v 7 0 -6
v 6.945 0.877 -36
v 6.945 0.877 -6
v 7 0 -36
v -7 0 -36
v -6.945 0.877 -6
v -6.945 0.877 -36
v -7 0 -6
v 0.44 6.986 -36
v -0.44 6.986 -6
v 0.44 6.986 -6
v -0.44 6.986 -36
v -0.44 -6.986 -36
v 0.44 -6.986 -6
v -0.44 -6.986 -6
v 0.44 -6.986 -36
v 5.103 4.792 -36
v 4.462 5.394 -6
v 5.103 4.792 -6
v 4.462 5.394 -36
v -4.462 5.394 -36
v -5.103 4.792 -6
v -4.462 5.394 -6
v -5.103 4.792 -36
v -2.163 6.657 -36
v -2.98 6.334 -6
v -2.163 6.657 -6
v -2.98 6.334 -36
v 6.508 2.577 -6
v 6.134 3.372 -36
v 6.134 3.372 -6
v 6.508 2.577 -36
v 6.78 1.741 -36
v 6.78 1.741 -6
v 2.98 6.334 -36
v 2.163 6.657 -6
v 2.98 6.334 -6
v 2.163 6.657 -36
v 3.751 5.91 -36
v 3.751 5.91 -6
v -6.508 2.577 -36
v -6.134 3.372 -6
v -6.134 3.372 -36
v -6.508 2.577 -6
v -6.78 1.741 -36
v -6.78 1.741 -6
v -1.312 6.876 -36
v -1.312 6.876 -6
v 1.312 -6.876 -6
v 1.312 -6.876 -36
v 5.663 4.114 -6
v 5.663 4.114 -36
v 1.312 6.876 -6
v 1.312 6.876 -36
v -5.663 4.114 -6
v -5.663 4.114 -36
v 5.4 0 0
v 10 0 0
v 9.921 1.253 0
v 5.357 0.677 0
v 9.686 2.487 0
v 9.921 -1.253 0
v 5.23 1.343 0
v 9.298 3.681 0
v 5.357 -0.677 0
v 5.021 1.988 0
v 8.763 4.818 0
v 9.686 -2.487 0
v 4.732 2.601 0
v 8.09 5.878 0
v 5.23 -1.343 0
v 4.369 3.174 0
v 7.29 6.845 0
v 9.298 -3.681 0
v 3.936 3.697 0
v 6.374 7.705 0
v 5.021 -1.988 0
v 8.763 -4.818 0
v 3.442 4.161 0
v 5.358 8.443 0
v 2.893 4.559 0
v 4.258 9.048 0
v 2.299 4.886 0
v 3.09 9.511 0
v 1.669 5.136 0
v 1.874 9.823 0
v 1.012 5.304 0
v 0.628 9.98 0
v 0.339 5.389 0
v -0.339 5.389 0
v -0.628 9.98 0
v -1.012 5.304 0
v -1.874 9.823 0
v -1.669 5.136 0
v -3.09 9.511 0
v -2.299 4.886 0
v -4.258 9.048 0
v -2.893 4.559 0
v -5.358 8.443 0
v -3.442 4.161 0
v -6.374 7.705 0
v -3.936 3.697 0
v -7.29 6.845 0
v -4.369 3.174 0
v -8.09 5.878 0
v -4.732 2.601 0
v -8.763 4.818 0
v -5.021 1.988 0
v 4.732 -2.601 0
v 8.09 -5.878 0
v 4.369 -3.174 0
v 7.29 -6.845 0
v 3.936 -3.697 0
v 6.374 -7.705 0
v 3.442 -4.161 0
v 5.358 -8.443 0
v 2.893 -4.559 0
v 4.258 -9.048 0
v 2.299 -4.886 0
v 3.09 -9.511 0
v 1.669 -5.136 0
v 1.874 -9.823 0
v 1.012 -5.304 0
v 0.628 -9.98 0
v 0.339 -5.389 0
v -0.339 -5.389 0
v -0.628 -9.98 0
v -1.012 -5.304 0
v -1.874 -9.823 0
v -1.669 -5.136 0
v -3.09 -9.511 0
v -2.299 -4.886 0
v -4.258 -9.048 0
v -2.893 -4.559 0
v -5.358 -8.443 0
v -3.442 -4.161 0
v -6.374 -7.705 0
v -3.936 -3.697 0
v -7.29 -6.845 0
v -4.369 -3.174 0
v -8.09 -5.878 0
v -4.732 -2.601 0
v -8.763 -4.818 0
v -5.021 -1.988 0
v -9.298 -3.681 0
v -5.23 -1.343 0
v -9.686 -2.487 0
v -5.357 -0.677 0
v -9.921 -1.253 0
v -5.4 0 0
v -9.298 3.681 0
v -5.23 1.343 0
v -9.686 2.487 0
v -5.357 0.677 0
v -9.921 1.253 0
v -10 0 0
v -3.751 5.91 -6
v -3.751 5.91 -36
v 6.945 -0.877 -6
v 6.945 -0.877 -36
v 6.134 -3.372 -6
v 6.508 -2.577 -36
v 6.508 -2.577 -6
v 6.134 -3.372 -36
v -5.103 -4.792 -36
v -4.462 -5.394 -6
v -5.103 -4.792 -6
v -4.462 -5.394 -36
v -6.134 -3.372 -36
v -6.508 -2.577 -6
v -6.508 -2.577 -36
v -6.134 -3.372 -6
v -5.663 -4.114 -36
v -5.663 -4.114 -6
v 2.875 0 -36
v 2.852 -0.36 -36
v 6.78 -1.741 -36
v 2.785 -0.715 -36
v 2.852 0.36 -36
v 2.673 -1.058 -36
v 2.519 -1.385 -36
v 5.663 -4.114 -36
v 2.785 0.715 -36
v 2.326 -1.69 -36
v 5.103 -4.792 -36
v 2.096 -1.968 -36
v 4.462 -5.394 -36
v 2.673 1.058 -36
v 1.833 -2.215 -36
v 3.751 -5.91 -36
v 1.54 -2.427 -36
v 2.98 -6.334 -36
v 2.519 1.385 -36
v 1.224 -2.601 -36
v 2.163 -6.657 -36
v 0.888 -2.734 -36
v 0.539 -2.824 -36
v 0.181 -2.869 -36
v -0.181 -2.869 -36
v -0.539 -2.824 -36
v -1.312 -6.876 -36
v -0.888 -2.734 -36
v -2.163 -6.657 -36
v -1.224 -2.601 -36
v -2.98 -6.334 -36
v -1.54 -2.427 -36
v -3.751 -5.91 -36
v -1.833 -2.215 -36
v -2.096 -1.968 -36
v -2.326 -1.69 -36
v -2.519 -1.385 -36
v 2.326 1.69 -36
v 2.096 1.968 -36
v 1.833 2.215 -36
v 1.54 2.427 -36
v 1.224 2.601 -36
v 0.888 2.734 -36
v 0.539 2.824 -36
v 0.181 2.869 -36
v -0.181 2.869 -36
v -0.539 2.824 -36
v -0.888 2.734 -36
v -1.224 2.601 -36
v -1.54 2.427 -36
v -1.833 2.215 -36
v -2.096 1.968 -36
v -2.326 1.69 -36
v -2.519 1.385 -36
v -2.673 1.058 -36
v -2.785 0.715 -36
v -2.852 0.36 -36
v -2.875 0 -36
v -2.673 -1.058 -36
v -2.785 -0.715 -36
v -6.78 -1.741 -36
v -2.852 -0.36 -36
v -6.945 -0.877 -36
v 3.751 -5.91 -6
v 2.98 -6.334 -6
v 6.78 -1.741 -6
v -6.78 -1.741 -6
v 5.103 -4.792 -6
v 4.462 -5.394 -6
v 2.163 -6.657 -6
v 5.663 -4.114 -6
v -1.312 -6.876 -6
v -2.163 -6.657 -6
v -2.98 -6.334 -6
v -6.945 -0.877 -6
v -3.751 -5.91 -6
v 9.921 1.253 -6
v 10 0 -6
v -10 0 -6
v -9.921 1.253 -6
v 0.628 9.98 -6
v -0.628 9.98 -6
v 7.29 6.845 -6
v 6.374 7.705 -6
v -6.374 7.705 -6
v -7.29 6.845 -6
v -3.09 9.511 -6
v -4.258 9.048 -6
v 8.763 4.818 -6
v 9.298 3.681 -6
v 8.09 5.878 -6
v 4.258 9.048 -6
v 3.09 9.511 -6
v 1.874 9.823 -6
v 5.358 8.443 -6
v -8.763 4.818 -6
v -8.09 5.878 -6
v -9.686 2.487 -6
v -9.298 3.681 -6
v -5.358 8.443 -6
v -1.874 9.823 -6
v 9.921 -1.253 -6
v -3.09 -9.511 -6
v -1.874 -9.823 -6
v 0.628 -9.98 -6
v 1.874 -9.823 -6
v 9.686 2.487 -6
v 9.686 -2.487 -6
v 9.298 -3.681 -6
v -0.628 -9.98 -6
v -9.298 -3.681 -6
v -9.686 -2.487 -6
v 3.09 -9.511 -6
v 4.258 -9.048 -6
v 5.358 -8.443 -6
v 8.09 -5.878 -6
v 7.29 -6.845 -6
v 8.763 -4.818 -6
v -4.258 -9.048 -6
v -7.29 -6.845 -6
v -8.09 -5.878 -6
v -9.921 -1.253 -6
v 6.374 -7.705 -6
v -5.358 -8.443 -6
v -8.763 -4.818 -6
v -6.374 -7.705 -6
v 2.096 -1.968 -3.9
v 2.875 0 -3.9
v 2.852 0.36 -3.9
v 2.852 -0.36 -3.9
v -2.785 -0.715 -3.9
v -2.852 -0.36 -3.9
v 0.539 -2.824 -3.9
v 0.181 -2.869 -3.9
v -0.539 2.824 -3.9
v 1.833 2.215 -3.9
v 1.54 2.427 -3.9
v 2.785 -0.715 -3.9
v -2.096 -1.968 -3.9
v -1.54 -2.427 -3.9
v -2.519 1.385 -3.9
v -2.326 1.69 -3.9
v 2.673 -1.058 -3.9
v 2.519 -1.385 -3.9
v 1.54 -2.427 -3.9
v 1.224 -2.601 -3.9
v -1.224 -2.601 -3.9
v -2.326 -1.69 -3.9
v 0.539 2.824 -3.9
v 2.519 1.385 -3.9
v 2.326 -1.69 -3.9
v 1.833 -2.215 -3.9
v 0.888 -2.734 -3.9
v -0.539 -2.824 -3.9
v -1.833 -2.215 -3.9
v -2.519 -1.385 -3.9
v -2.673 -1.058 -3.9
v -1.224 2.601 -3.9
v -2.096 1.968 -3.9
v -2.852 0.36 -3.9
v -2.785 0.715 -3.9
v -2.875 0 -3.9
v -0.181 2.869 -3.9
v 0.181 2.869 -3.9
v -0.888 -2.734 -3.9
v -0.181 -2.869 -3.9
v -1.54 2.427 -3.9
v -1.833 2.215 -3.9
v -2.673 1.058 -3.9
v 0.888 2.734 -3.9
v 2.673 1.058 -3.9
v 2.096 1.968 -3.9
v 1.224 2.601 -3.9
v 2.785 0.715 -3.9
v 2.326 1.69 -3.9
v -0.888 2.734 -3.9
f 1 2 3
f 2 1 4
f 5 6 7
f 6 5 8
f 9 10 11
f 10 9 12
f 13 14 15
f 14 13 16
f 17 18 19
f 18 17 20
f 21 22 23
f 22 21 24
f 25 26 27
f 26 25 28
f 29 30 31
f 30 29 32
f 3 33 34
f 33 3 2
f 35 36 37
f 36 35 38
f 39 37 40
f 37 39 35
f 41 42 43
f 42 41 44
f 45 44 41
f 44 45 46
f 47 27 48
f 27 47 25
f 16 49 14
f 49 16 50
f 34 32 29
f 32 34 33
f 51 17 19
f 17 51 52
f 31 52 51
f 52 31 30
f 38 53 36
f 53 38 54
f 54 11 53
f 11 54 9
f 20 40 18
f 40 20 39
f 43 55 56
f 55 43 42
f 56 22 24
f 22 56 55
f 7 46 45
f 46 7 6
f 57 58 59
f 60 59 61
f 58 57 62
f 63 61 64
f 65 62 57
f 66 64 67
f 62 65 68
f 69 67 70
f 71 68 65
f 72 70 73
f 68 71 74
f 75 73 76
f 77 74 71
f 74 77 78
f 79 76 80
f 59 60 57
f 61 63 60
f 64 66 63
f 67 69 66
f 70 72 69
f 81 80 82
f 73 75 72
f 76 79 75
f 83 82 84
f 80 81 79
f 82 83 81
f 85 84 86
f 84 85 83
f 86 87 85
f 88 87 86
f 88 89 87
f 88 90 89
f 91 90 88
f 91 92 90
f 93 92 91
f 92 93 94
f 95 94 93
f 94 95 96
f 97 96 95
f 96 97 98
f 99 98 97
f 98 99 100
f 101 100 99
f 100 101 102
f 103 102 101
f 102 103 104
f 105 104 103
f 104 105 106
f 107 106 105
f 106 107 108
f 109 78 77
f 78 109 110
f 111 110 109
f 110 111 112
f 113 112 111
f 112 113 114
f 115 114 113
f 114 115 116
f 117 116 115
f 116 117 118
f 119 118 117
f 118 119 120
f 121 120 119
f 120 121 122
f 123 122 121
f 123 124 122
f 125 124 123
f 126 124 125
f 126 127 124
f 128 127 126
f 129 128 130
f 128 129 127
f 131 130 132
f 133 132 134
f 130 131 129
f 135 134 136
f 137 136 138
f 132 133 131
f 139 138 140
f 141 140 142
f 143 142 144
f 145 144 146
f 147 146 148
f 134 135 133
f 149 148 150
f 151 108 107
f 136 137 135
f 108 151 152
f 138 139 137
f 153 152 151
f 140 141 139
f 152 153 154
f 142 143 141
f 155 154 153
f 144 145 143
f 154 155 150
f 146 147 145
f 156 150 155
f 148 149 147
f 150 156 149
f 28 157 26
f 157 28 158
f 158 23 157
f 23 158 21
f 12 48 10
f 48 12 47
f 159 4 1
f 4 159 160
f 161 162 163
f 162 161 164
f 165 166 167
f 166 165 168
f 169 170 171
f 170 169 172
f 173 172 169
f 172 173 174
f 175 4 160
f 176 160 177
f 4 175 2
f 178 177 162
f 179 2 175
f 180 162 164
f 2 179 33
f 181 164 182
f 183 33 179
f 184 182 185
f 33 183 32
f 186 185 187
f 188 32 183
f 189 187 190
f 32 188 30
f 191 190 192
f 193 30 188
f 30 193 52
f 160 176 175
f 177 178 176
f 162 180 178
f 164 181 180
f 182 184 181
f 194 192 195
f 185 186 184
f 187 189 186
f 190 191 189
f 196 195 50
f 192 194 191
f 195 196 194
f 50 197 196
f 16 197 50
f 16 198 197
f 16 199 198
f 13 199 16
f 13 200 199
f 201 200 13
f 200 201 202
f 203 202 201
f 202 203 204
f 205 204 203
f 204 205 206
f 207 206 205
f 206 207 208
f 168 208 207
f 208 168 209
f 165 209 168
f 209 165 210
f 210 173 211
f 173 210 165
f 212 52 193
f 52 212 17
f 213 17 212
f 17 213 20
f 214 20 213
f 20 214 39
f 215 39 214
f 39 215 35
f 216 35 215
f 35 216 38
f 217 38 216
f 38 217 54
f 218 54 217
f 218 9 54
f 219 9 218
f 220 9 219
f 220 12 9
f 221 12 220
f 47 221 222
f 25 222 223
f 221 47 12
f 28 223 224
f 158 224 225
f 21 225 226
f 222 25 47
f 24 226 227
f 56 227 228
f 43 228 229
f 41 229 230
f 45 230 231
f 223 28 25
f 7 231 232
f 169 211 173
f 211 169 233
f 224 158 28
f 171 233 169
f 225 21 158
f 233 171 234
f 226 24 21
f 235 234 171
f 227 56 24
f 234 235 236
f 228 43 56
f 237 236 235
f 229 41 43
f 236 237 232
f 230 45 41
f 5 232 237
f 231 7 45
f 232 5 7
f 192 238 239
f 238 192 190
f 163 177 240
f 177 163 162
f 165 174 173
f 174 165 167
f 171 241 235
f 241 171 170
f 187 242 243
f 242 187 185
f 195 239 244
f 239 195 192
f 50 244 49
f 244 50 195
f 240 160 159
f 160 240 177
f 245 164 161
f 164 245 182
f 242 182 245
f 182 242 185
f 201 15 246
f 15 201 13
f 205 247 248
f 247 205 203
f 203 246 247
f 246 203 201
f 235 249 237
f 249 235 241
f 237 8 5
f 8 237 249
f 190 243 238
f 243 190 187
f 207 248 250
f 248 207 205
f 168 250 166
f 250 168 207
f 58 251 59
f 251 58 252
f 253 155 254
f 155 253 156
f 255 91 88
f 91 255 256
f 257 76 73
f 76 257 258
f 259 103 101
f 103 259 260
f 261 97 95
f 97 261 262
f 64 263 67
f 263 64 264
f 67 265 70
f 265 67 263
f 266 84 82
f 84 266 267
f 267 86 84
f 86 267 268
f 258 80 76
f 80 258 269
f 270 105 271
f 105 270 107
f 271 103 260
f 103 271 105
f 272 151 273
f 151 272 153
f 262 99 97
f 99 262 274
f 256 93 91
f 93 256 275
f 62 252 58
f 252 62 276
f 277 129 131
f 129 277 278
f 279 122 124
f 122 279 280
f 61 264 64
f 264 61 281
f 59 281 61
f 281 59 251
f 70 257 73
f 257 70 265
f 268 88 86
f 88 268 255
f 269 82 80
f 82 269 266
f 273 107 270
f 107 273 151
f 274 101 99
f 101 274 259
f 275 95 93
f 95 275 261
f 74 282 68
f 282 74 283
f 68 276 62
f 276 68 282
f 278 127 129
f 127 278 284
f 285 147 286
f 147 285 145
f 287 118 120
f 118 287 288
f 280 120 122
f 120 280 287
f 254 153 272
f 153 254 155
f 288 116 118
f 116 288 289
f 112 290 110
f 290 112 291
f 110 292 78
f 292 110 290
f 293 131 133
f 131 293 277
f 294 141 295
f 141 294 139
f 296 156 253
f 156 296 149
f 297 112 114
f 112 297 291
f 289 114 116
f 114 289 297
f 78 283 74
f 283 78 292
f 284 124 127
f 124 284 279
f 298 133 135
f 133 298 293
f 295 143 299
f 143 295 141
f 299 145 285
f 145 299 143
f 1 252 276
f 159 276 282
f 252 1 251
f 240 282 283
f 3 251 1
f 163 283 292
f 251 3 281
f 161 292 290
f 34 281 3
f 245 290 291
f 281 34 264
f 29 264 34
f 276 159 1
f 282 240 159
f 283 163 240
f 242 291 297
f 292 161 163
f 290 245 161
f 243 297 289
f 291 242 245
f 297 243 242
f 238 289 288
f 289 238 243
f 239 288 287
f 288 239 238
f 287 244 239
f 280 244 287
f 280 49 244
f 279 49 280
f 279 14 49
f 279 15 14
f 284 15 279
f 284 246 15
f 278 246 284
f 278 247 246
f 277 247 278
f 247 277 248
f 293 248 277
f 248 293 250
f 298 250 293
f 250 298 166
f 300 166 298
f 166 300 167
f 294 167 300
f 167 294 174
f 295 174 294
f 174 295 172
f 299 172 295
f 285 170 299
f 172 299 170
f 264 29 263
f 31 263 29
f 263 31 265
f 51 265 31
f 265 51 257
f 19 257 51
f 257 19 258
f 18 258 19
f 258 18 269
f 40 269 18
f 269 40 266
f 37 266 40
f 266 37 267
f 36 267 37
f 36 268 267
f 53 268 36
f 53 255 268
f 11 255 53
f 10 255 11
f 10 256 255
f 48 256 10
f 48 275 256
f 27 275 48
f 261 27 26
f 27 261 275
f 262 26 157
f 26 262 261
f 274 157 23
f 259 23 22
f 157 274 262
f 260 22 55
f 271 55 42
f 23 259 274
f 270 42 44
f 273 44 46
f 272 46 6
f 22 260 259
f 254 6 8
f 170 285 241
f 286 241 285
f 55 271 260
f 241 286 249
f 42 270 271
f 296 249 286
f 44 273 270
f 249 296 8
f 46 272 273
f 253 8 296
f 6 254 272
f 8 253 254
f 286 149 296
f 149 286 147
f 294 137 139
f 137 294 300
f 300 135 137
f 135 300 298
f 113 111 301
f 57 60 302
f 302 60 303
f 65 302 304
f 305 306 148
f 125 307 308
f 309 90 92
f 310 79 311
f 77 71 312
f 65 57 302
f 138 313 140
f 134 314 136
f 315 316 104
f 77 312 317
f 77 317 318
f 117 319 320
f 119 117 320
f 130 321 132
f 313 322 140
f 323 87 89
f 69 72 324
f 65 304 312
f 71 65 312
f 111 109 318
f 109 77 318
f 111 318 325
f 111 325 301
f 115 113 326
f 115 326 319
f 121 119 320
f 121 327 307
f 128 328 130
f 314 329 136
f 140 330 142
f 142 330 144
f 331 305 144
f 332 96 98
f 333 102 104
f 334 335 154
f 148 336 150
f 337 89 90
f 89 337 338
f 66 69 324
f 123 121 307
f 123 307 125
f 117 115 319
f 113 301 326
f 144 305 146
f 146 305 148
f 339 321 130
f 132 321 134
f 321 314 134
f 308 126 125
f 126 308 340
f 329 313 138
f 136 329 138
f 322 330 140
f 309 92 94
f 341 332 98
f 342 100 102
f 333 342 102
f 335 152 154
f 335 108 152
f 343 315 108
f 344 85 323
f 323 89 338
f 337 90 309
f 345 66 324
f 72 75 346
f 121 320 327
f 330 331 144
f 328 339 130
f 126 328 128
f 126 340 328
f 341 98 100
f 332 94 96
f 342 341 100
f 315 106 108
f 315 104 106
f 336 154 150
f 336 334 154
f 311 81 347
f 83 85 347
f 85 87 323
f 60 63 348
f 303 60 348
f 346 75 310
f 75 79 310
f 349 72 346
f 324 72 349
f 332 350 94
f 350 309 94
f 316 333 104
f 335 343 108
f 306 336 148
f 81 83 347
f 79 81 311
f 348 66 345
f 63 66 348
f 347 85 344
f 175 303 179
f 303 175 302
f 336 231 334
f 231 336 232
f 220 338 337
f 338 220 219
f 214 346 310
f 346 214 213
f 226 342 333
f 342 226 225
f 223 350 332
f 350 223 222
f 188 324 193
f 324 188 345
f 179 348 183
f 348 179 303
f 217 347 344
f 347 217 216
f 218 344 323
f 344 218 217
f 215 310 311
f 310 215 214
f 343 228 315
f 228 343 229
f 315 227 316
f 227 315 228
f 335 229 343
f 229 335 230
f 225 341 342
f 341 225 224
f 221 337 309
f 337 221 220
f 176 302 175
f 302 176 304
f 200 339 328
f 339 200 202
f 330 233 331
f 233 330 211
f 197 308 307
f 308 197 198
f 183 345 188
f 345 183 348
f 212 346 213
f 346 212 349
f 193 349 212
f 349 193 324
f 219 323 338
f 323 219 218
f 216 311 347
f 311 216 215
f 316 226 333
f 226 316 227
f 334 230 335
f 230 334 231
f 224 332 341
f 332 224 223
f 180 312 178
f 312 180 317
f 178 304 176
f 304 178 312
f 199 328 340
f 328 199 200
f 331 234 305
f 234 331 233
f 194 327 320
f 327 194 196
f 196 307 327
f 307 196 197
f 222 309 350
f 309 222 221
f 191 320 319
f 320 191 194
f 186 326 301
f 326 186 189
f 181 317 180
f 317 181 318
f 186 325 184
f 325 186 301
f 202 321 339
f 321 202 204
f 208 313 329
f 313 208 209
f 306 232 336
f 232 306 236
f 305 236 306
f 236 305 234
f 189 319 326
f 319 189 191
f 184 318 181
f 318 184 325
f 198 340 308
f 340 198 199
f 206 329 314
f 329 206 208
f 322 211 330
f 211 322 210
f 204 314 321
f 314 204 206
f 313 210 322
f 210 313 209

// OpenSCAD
$fn = 50;


difference() {
	union() {
		translate(v = [0, 0, -36.0000000000]) {
			cylinder(h = 36, r = 7.0000000000);
		}
		translate(v = [0, 0, -6.0000000000]) {
			cylinder(h = 6, r = 10.0000000000);
		}
	}
	union() {
		translate(v = [0, 0, 0]) {
			rotate(a = [0, 0, 0]) {
				difference() {
					union() {
						#translate(v = [0, 0, -36.0000000000]) {
							cylinder(h = 36, r = 2.6000000000);
						}
						#translate(v = [0, 0, -3.9000000000]) {
							cylinder(h = 3.9000000000, r = 7.0000000000, r1 = 2.8750000000, r2 = 5.4000000000);
						}
						#translate(v = [0, 0, -36.0000000000]) {
							cylinder(h = 36, r = 2.8750000000);
						}
						#translate(v = [0, 0, -36.0000000000]) {
							cylinder(h = 36, r = 2.6000000000);
						}
					}
					union();
				}
			}
		}
	}
}
